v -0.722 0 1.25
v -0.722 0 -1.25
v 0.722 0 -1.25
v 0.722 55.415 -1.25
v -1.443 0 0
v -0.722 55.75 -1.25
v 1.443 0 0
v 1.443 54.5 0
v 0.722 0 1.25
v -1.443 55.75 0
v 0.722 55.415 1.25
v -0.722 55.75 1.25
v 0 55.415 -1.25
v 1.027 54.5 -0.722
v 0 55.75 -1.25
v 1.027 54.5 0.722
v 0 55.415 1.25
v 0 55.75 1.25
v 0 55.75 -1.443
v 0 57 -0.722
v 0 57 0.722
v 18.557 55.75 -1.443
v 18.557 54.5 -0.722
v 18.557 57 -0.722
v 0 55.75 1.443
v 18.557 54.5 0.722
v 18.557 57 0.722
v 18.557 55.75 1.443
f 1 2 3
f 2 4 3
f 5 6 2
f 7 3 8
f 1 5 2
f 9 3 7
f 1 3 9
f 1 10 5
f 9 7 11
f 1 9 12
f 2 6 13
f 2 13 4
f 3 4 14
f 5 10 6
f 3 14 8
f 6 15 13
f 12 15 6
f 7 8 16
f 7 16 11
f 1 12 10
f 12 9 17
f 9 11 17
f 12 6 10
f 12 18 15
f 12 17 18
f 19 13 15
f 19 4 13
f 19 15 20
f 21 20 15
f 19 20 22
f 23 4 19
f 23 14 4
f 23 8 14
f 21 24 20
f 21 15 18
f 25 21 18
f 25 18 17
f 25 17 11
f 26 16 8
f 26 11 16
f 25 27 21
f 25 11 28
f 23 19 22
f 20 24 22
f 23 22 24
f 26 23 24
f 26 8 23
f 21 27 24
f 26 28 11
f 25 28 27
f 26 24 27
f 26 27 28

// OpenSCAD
// 2.5 mm metric hex key
// The holder specifies the hex size. Arm lengths follow the Wiha 350 short series as a representative example. The holder source leaves the key manufacturer unspecified. The elbow is simplified.
// Units: mm
$fn = 64;
union() {
    translate([0, 0, 0]) rotate([-90, 0, 0])
        cylinder(h=55.75, r1=1.4433756729740645, r2=1.4433756729740645, $fn=6);
    translate([0, 55.75, 0]) rotate([0, 90, 0])
        cylinder(h=18.556624327025936, r1=1.4433756729740645, r2=1.4433756729740645, $fn=6);
}
